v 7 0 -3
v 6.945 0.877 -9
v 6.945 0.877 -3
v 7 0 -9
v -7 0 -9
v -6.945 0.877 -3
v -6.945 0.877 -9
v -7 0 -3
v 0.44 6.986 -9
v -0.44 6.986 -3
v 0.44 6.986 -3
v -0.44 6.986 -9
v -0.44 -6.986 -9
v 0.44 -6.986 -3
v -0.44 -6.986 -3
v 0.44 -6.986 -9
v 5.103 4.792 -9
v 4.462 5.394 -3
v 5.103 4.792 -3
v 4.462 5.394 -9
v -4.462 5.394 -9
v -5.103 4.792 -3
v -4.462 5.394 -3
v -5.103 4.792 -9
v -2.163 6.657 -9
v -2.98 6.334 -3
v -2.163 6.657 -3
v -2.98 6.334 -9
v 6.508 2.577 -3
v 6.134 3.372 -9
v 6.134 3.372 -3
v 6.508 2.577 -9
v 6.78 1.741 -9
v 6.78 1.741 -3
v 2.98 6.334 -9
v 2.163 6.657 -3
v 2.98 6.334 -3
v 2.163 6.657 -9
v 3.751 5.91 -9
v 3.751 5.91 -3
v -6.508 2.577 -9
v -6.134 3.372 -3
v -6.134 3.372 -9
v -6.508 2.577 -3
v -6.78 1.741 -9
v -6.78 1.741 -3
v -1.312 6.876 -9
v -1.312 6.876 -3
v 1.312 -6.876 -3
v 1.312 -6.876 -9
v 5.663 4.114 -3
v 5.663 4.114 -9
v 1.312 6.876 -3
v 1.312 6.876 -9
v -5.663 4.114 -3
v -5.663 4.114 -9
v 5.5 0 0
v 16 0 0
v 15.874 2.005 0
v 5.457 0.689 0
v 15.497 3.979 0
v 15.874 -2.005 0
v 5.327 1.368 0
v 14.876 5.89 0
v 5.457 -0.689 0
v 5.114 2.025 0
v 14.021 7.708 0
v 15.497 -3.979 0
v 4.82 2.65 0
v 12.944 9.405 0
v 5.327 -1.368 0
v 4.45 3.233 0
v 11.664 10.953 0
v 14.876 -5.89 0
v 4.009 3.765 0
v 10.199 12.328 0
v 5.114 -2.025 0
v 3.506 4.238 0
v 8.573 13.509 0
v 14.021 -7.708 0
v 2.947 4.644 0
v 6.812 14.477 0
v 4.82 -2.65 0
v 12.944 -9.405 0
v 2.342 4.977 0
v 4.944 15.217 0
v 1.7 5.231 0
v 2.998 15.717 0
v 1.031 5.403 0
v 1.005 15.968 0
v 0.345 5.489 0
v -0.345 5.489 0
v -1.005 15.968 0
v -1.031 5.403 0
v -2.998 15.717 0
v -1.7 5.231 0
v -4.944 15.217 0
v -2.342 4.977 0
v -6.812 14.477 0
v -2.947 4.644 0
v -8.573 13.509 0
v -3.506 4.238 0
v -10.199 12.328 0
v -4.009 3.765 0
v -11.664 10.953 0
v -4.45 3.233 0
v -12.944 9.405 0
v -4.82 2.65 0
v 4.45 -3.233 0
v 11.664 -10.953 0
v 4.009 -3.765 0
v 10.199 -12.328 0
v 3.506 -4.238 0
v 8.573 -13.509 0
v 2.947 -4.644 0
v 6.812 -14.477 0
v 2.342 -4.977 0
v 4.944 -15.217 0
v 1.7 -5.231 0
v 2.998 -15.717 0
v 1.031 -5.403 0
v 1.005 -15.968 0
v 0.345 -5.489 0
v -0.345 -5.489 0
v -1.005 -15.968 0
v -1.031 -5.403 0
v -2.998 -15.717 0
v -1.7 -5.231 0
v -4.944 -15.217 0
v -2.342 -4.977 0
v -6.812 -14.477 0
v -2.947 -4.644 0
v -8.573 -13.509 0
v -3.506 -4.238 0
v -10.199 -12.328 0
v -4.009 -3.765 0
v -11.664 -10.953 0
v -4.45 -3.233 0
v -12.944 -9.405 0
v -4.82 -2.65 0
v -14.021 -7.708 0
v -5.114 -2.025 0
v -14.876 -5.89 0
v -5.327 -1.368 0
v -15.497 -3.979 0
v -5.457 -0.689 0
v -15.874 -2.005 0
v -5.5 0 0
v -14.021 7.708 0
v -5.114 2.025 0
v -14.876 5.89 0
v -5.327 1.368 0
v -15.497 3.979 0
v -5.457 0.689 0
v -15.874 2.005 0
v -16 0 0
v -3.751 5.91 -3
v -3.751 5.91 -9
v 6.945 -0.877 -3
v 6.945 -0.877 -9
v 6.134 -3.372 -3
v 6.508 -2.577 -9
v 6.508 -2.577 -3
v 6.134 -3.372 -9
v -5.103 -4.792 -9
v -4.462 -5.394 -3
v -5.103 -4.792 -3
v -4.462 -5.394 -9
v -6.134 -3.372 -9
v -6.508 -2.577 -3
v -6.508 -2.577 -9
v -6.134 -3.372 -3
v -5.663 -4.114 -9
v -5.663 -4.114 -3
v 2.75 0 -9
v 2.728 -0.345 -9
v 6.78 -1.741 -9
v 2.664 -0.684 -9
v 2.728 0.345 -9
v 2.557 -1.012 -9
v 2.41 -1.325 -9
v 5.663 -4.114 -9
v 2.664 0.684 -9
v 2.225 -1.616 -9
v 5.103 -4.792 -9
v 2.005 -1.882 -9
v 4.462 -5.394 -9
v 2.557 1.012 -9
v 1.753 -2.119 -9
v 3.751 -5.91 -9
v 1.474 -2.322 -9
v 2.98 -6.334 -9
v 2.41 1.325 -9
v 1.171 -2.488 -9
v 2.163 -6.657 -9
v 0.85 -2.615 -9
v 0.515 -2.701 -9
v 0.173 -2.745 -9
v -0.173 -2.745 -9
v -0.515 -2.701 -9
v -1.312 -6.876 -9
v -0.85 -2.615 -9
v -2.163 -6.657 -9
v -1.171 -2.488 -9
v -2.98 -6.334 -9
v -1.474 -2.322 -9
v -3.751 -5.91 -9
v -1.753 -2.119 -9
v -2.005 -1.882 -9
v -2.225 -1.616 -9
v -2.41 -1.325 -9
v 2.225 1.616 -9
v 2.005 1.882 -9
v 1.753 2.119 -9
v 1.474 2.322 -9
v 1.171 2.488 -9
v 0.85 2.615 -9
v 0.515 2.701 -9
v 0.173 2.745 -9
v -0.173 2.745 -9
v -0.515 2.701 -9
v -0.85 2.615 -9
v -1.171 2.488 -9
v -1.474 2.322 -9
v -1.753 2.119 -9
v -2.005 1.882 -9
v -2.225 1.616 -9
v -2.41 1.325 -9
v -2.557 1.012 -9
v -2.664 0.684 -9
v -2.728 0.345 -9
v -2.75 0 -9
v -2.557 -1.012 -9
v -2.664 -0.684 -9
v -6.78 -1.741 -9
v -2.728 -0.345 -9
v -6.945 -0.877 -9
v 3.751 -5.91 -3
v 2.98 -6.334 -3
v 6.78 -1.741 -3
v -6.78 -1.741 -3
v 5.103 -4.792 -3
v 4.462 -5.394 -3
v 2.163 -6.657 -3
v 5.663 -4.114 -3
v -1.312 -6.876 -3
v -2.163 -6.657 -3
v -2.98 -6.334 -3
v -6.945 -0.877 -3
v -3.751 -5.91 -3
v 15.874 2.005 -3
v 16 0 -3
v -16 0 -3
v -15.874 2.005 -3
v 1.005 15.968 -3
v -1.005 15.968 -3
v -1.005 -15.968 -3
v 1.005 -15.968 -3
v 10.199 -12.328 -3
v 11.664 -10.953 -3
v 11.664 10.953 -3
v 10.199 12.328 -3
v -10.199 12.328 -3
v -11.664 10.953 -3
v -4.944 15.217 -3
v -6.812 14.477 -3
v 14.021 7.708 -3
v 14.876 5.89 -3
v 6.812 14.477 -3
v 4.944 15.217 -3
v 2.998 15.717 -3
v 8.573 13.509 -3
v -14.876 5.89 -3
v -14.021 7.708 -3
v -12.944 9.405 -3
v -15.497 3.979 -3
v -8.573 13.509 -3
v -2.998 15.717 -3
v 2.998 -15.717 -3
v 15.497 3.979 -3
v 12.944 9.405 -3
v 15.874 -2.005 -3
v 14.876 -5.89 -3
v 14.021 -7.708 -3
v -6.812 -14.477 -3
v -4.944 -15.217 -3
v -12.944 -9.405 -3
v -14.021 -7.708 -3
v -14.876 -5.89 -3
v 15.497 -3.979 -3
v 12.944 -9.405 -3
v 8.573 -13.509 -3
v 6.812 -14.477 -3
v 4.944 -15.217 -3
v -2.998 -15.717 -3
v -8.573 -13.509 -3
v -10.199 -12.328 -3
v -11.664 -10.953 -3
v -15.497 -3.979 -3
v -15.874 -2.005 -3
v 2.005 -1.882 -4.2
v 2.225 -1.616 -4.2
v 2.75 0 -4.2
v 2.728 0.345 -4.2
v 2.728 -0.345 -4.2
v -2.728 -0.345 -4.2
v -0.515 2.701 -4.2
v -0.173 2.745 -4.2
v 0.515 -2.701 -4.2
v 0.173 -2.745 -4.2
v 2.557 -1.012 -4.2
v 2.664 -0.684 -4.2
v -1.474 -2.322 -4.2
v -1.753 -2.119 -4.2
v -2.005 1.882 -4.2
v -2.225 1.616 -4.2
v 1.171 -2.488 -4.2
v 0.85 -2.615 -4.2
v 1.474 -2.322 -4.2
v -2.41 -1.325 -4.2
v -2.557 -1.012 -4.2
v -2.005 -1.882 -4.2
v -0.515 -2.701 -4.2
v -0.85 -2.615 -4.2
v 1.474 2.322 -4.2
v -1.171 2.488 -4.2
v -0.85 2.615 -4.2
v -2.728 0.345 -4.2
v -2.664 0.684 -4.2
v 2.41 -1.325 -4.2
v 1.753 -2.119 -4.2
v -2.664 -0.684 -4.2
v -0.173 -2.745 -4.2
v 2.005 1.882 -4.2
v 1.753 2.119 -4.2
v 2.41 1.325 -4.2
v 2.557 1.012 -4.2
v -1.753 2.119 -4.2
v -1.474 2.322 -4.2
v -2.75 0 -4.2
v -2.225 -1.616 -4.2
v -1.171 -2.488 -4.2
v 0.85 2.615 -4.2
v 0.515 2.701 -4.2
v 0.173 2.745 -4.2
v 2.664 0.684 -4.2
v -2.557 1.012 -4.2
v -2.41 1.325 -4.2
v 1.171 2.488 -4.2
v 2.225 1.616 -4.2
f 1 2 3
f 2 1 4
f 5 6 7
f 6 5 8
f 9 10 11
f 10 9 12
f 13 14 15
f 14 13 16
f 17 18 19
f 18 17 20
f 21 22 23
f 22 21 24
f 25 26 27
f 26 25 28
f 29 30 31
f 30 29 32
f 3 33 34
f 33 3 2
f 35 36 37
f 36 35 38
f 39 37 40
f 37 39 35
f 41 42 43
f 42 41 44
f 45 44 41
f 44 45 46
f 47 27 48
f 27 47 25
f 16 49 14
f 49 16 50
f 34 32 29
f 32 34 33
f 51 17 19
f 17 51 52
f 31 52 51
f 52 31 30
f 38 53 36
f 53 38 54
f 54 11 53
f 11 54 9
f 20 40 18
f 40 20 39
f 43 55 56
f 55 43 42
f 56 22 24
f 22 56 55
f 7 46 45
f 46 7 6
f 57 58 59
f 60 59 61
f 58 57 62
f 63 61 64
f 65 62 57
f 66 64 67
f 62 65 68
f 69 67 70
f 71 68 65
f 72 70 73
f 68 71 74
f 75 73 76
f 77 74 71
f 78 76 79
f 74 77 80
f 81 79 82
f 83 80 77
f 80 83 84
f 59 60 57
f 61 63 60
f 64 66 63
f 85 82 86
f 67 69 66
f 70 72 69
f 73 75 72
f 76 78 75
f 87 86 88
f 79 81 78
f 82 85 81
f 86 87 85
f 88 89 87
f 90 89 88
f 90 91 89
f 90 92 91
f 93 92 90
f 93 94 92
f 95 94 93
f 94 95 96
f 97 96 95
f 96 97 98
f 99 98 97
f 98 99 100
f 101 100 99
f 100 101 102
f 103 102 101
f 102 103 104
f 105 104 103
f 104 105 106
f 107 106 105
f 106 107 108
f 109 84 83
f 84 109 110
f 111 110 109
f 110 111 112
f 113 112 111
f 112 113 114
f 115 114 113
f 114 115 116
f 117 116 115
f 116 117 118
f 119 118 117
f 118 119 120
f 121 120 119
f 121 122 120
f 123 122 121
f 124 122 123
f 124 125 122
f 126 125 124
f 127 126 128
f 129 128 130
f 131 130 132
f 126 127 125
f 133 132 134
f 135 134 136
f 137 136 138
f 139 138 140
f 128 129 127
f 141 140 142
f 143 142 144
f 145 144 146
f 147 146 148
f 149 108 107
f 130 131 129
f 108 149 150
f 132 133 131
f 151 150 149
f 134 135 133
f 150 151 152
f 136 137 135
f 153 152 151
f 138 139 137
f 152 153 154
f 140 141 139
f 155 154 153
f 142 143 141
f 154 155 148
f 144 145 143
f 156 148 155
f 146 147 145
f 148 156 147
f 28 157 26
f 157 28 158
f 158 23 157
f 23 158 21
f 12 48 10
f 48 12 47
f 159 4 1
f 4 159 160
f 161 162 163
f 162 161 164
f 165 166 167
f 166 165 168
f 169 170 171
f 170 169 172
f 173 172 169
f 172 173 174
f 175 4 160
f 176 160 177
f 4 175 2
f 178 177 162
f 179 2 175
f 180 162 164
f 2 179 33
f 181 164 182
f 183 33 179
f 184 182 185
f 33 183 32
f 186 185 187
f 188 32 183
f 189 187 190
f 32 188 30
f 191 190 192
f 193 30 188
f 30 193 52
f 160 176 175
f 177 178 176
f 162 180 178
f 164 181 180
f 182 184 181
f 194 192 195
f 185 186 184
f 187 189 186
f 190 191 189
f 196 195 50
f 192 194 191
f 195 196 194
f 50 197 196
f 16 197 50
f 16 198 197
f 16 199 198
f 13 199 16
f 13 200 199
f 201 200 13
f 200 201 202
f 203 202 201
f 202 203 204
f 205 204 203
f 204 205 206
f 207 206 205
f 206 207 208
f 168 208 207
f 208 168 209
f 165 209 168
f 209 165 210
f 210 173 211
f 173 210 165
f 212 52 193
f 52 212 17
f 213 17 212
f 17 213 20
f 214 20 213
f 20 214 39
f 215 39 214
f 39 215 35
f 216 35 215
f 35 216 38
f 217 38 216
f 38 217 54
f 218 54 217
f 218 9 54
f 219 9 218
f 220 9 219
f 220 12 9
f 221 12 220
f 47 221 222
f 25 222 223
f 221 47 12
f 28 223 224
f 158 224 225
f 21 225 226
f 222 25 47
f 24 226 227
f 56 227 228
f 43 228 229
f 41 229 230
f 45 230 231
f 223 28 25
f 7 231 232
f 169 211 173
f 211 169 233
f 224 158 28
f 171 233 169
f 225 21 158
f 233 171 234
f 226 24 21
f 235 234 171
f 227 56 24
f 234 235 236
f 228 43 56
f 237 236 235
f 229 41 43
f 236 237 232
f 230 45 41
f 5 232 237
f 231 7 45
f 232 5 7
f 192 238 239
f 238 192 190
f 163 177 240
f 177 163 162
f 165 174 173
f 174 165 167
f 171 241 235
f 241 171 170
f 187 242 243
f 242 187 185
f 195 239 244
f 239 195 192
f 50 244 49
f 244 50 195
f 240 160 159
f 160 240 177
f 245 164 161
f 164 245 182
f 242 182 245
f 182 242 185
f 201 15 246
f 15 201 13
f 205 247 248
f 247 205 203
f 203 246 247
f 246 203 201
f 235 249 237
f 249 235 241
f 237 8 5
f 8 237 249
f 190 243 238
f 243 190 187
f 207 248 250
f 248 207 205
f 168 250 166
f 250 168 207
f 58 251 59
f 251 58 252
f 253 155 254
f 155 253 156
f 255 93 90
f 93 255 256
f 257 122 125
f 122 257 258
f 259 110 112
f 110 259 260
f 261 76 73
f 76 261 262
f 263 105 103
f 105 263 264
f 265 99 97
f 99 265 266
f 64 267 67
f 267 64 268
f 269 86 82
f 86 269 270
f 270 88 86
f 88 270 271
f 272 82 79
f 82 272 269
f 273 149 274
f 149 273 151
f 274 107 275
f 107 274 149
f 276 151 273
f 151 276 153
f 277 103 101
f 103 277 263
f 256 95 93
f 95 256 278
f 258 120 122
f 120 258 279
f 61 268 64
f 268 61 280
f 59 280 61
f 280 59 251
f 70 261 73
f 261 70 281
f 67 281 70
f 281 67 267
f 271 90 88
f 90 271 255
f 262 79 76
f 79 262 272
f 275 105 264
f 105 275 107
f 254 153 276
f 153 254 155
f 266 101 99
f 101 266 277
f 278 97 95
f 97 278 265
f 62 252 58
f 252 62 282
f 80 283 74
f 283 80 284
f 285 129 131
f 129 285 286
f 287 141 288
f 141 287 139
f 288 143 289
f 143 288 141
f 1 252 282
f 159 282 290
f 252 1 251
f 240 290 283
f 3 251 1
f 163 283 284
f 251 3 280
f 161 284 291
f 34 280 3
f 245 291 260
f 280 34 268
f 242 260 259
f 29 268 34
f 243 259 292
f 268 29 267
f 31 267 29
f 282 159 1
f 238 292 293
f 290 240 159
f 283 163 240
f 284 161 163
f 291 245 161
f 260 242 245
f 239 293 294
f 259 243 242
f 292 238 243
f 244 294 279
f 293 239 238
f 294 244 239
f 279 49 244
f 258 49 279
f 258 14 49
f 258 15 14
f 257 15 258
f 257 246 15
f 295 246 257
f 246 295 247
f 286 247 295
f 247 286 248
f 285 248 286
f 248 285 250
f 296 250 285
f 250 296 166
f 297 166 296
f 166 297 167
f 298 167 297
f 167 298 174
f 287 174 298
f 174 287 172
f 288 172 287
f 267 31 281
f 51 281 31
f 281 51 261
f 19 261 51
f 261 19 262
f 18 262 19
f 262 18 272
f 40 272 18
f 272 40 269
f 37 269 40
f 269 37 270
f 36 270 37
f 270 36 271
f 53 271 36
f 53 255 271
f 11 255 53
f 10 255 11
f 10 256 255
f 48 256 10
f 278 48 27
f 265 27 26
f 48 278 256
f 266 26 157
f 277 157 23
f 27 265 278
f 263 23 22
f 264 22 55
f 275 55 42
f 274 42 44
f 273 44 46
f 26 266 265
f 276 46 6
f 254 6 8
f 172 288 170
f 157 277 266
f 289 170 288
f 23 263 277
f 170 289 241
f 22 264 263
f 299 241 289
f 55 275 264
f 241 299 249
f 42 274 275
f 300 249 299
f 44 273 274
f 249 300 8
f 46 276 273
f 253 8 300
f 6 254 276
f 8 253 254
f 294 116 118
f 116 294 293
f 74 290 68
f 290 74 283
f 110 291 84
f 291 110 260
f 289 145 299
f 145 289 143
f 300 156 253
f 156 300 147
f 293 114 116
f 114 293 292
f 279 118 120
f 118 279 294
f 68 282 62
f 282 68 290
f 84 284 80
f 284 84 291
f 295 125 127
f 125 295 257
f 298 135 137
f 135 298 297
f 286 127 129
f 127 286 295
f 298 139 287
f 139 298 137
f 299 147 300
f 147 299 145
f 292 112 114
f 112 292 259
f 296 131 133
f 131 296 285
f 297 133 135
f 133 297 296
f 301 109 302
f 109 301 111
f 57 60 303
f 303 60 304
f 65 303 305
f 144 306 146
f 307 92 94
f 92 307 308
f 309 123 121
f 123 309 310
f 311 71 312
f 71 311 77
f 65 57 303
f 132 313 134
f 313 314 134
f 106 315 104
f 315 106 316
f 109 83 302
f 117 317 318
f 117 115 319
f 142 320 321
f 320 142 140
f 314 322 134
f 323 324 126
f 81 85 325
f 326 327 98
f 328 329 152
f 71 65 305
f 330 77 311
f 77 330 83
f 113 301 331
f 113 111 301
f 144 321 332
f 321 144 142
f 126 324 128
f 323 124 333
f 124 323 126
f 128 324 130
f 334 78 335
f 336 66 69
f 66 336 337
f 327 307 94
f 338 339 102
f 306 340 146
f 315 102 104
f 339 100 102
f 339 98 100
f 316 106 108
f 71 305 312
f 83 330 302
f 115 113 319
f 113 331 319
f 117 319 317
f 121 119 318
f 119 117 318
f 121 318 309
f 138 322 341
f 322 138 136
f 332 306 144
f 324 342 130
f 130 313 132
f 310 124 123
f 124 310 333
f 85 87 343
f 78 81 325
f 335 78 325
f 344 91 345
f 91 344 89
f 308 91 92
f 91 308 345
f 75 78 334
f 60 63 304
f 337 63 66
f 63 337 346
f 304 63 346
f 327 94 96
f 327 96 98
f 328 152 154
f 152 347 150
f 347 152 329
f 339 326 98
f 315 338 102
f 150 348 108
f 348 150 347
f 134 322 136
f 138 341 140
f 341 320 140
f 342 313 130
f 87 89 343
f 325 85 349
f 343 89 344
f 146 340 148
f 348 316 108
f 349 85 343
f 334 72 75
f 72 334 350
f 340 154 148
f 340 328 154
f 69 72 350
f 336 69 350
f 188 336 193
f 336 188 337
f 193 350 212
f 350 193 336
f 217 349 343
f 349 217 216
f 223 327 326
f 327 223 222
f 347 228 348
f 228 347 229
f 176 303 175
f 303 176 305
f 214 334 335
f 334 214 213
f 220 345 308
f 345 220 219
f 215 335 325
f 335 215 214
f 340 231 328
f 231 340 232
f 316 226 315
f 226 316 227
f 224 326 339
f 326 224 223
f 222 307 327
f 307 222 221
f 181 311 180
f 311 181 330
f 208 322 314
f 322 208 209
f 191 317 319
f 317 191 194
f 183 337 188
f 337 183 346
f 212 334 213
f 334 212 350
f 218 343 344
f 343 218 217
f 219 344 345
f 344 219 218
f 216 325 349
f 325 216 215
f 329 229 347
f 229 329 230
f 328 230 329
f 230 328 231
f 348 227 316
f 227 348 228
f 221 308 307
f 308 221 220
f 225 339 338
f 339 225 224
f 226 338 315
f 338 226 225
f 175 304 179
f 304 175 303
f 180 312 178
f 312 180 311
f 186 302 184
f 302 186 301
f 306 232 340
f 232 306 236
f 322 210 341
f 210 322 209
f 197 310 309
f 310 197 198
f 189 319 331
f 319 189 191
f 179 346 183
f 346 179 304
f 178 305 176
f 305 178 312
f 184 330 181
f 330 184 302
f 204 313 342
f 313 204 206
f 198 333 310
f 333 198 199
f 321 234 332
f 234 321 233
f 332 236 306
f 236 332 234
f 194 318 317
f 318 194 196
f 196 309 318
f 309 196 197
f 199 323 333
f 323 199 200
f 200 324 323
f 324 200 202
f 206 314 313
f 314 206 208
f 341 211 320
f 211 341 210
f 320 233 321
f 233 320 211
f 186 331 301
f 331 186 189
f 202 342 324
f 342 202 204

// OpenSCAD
$fn = 50;


difference() {
	union() {
		translate(v = [0, 0, -9.0000000000]) {
			cylinder(h = 9, r = 7.0000000000);
		}
		translate(v = [0, 0, -3.0000000000]) {
			cylinder(h = 3, r = 16.0000000000);
		}
	}
	union() {
		translate(v = [0, 0, 0]) {
			rotate(a = [0, 0, 0]) {
				difference() {
					union() {
						#translate(v = [0, 0, -9.0000000000]) {
							cylinder(h = 9, r = 2.2500000000);
						}
						#translate(v = [0, 0, -4.2000000000]) {
							cylinder(h = 4.2000000000, r = 7.0000000000, r1 = 2.7500000000, r2 = 5.5000000000);
						}
						#translate(v = [0, 0, -9.0000000000]) {
							cylinder(h = 9, r = 2.7500000000);
						}
						#translate(v = [0, 0, -9.0000000000]) {
							cylinder(h = 9, r = 2.2500000000);
						}
					}
					union();
				}
			}
		}
	}
}
